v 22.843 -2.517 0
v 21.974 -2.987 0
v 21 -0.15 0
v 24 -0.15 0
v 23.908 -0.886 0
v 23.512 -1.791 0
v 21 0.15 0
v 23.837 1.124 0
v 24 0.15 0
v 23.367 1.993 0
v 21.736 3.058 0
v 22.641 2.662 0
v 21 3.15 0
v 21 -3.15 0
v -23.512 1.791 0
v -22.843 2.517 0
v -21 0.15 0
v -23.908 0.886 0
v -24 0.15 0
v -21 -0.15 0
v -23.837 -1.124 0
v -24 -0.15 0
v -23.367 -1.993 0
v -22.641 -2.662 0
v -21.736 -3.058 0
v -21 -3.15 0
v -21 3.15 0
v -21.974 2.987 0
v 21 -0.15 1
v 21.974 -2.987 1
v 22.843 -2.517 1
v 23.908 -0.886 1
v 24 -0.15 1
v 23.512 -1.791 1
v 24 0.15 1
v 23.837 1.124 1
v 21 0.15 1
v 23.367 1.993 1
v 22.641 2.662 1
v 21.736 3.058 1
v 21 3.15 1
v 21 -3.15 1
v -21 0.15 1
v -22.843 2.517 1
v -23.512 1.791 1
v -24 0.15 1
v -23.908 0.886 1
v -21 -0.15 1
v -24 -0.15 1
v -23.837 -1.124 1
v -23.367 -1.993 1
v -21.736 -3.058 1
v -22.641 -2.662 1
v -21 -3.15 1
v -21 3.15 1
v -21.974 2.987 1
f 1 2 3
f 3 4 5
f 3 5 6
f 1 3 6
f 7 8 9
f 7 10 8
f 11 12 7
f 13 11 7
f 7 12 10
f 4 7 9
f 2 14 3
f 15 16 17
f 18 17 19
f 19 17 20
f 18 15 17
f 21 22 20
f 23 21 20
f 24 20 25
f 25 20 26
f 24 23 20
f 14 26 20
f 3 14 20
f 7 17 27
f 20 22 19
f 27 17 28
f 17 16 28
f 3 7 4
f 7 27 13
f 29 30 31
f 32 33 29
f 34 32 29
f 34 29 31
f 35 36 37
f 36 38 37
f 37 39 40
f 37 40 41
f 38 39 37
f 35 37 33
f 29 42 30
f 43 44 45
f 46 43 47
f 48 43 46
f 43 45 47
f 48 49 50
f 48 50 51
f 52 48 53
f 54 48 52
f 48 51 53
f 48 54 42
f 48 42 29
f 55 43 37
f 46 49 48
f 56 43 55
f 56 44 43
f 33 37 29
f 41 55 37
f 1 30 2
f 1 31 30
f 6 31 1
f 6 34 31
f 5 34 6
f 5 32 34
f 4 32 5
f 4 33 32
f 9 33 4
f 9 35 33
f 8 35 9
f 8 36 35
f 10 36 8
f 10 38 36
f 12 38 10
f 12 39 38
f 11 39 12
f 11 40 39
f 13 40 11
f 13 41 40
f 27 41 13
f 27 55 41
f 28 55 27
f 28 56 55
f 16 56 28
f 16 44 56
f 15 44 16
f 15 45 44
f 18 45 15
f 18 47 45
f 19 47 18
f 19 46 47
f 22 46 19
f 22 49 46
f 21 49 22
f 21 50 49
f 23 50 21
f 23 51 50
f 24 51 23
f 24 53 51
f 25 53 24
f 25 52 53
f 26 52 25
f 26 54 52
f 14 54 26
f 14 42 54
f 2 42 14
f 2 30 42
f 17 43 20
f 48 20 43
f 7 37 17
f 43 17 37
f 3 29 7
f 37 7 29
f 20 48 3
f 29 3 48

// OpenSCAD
t=0.3;
w=42;
module slot() {
  square([w,t], center=true);
}

$fs=1;
linear_extrude(1) difference() {
  offset(r=3) slot();
  slot();
}
